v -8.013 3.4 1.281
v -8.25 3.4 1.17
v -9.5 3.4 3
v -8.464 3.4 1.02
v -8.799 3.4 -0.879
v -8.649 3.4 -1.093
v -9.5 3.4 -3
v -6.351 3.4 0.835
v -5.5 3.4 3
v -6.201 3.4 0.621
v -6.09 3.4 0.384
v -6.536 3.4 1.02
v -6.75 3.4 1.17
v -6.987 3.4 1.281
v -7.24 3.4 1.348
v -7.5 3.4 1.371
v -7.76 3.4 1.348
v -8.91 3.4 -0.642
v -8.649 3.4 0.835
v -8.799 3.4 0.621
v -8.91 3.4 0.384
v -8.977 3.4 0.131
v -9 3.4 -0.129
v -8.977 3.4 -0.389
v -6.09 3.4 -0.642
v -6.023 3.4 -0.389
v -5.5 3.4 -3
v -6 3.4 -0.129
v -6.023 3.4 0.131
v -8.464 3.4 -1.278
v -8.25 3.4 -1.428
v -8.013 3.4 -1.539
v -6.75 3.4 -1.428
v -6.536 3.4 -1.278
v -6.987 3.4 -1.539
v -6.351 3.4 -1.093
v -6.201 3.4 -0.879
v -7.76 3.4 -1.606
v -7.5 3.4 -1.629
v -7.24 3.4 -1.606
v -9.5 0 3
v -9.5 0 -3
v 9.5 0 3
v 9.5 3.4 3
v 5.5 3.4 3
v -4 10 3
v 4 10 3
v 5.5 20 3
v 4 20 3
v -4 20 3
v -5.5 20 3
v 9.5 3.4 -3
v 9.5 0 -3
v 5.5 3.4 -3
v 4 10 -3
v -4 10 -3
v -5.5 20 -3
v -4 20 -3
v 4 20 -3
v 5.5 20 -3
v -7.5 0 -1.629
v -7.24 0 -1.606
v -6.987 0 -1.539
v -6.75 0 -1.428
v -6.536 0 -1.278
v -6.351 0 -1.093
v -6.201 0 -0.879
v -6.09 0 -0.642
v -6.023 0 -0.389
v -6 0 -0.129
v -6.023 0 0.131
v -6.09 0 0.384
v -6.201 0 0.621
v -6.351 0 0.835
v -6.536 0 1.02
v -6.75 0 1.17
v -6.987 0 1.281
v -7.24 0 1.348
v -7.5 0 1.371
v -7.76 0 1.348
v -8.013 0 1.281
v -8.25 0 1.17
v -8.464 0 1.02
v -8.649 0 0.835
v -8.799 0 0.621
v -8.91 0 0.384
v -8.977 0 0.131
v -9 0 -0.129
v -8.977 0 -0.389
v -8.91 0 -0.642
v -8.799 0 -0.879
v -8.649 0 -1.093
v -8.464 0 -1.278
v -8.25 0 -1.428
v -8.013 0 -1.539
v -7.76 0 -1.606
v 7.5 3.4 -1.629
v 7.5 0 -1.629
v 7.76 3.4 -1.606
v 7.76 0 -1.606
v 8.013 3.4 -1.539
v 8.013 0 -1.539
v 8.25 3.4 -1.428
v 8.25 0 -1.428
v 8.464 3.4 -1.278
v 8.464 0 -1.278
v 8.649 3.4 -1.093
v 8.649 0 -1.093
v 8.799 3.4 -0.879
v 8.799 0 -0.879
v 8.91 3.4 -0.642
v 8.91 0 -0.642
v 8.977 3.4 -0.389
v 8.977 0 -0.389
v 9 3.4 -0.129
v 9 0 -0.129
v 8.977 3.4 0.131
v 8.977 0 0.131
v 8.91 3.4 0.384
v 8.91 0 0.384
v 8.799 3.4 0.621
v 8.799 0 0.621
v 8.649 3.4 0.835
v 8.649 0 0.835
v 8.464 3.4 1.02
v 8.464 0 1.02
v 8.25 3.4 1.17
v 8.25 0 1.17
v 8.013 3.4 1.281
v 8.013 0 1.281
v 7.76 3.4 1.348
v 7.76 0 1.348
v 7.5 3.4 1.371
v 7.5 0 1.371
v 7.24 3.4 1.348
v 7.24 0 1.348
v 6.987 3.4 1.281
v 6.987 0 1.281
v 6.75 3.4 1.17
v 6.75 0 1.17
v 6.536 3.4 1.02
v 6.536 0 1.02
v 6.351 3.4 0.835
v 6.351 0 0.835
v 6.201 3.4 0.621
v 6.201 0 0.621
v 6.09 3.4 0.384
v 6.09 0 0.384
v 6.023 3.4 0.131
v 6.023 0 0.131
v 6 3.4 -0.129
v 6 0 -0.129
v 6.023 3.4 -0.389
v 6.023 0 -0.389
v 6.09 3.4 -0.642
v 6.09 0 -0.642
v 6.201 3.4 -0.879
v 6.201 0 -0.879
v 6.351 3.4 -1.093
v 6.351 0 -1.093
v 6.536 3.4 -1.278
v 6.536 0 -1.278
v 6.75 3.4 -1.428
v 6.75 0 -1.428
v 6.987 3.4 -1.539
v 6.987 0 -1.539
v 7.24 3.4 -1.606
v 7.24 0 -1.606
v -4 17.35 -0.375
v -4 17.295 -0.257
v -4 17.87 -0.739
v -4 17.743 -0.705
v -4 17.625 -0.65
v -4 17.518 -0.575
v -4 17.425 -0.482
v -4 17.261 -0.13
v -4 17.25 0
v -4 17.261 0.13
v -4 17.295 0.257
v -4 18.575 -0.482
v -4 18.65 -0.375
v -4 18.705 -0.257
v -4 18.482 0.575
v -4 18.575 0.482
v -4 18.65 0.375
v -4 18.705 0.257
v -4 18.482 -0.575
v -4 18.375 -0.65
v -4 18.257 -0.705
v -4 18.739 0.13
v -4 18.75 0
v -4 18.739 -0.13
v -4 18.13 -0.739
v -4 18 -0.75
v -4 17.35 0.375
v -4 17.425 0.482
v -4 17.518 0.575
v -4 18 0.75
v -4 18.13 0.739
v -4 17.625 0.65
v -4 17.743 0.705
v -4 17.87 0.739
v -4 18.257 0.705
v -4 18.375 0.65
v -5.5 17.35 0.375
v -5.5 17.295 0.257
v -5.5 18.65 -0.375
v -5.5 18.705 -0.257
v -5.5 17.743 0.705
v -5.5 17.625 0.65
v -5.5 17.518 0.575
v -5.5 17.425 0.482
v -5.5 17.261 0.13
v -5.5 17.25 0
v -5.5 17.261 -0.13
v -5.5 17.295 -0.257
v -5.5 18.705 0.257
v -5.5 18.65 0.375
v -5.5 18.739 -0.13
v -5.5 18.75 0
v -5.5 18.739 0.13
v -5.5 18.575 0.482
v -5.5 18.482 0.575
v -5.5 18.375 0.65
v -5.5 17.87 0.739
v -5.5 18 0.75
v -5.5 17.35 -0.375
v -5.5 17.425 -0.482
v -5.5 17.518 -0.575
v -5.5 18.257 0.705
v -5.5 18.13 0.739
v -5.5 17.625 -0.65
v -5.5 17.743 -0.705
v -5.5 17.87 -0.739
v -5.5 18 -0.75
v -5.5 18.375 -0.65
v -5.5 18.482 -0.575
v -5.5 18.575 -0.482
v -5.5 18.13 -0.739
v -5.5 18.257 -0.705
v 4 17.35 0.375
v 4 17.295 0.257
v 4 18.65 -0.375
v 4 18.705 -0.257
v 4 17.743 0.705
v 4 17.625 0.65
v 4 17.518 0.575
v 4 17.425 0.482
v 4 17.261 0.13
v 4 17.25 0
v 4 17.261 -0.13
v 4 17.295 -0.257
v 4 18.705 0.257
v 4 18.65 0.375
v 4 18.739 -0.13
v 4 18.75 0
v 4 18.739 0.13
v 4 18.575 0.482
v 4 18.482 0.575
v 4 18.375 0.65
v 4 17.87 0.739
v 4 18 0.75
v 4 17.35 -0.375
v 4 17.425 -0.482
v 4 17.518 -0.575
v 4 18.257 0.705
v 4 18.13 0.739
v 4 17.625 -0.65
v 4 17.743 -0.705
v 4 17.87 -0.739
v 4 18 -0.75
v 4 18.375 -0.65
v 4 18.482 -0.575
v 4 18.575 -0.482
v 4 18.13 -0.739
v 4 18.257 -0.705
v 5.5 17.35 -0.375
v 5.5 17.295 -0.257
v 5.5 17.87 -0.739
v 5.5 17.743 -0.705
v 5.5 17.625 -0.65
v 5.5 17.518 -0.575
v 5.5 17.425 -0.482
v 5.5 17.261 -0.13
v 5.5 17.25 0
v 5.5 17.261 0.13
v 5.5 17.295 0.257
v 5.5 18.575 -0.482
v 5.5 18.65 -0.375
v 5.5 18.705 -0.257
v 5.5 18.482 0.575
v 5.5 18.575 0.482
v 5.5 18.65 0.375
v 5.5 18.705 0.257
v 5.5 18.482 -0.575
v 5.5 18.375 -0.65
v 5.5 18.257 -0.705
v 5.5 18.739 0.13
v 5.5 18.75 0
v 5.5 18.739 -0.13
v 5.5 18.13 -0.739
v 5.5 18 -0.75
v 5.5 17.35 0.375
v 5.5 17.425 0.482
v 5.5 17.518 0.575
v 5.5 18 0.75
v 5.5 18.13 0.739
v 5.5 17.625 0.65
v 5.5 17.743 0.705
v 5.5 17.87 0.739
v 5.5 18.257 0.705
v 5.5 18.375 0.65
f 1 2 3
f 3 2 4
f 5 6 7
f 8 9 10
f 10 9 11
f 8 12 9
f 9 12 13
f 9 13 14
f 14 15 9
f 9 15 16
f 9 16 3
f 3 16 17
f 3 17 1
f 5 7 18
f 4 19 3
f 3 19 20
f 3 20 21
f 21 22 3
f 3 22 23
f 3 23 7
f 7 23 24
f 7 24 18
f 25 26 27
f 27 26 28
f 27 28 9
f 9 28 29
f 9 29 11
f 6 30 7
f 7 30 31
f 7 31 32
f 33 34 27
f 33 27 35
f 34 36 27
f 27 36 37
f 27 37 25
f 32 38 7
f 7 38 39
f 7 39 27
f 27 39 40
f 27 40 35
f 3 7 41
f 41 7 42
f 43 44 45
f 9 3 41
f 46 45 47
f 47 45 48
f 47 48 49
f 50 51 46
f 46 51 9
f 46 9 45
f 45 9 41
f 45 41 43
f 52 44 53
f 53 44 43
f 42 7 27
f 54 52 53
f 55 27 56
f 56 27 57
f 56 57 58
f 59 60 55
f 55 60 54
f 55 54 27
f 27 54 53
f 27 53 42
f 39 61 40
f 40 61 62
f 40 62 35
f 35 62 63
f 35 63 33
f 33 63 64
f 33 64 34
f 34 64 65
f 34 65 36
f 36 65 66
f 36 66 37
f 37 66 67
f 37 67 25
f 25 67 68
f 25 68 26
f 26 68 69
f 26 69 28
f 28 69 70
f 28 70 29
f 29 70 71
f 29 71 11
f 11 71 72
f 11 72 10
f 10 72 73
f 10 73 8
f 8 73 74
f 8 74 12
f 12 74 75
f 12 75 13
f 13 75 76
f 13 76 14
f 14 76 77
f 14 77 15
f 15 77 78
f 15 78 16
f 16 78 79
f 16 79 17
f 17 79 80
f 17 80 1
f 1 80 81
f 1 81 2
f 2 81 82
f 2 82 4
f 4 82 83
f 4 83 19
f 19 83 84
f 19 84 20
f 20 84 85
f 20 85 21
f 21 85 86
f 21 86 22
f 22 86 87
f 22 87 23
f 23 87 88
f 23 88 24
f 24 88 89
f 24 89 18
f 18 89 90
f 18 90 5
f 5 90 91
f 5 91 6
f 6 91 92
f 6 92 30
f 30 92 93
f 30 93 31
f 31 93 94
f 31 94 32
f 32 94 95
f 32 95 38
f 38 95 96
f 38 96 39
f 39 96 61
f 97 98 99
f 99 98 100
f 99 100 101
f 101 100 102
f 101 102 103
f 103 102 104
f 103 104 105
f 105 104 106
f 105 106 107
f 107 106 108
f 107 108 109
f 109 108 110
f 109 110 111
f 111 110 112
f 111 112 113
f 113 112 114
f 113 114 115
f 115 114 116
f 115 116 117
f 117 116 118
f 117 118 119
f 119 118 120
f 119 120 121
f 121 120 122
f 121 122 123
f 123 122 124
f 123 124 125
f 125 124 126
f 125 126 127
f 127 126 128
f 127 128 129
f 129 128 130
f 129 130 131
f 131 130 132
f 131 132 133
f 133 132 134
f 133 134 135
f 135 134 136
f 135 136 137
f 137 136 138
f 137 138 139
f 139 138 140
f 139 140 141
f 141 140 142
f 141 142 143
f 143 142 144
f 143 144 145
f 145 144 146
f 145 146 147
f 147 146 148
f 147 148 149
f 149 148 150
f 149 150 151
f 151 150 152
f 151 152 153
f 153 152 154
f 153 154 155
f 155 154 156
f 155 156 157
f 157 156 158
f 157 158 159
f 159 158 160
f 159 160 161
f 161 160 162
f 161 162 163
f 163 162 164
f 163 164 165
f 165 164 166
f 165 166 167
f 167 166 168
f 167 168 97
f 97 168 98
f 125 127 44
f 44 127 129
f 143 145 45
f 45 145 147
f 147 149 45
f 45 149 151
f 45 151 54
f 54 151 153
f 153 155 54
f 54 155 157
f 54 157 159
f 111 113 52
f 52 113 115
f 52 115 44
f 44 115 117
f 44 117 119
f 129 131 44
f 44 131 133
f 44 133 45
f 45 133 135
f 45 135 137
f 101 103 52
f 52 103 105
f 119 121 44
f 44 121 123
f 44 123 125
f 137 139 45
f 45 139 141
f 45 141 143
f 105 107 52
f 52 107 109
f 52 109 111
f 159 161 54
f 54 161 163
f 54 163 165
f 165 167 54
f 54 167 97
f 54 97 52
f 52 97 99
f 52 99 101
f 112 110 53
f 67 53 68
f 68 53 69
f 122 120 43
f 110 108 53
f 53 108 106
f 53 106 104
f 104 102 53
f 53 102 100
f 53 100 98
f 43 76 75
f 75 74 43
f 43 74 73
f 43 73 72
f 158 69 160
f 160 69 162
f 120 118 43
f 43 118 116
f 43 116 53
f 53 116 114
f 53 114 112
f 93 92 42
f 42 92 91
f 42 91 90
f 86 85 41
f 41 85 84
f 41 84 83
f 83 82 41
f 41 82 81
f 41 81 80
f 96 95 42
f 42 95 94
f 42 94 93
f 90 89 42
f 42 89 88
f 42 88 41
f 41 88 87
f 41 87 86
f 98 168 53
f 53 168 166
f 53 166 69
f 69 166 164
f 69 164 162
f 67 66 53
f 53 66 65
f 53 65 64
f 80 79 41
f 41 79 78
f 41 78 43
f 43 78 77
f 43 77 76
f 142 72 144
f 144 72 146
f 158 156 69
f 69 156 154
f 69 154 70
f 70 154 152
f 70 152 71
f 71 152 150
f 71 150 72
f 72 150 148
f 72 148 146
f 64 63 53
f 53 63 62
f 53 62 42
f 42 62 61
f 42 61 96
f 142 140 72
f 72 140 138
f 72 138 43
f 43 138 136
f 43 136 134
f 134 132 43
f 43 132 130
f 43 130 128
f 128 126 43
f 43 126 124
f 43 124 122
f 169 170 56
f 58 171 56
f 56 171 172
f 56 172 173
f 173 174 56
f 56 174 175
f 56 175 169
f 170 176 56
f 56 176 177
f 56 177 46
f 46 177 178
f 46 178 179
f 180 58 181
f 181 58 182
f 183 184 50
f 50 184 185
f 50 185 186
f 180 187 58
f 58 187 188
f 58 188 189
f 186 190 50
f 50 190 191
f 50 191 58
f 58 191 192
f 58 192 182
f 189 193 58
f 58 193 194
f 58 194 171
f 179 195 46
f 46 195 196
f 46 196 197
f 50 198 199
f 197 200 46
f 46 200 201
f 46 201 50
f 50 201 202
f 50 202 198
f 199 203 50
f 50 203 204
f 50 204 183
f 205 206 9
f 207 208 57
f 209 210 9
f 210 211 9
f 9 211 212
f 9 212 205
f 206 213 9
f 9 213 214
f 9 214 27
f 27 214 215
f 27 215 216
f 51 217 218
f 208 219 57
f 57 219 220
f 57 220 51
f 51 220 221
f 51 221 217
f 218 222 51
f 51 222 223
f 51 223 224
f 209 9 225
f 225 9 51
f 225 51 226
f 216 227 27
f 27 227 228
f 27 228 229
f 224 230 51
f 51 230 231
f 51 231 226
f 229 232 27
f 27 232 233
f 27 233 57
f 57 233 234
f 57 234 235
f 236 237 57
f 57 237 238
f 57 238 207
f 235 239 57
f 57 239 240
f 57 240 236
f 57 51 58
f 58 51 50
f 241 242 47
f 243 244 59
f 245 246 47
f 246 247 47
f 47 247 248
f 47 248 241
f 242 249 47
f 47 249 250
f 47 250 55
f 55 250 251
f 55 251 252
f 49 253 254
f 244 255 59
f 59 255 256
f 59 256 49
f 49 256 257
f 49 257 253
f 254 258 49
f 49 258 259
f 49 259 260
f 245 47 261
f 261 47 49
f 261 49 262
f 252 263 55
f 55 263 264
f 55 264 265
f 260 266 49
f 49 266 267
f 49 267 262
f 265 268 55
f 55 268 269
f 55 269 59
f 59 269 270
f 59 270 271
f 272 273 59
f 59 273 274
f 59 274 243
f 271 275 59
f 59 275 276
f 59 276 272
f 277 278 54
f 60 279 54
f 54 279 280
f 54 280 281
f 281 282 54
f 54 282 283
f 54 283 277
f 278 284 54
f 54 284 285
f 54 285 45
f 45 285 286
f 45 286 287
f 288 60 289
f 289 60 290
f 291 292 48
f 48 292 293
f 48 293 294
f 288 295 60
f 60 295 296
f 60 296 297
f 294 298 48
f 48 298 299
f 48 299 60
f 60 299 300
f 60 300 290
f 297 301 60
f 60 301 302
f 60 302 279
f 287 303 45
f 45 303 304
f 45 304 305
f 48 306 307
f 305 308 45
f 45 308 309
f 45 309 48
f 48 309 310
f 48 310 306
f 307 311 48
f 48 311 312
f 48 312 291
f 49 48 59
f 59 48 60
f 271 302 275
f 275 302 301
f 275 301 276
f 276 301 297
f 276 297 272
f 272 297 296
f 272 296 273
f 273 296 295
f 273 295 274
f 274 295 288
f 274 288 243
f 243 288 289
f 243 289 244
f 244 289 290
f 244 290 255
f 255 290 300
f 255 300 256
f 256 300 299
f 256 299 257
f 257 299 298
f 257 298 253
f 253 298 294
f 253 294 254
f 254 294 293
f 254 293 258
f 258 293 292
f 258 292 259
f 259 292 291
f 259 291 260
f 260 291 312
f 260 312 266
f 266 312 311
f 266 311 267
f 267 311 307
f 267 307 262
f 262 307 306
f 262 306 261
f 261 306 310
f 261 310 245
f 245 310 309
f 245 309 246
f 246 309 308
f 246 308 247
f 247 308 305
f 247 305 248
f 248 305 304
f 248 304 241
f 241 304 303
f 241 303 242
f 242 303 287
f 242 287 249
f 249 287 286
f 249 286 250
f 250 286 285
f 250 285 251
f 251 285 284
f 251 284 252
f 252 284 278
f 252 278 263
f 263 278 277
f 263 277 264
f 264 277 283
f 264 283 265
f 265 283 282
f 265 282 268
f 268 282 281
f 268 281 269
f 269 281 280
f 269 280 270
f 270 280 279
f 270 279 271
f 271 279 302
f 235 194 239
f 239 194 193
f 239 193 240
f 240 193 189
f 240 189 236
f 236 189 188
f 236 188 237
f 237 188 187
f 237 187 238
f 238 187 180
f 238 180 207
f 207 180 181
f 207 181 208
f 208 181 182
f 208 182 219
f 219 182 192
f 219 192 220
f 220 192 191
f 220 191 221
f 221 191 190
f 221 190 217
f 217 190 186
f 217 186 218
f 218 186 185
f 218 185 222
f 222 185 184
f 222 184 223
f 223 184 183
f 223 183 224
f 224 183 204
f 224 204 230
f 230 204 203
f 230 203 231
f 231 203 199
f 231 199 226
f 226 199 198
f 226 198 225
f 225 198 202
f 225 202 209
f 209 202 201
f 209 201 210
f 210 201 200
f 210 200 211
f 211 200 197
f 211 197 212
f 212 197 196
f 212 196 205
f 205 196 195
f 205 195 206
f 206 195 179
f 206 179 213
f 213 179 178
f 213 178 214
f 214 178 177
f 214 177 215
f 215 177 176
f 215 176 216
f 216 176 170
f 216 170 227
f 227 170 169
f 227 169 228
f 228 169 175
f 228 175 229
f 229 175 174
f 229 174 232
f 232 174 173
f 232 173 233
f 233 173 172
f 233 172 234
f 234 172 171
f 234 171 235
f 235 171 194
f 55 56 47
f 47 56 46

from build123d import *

# Parameters (mm, degrees)
SKETCH1_R               = 1.5
BOSS_EXTRUDE1_DEPTH     = 3.4
SKETCH1_4_W             = 1.5
SKETCH1_4_H             = 6
BOSS_EXTRUDE2_DEPTH     = 20
CUT_EXTRUDE1_DEPTH      = 26.179356624
CUT_EXTRUDE1_DEPTH_BACK = 26.179356624
SKETCH2_R               = 0.75
BOSS_EXTRUDE3_DEPTH     = 10


with BuildPart() as part:
    # Sketch1 → Boss-Extrude1 (new body)
    with BuildSketch(Plane(origin=(0, 0, 0), x_dir=(1, 0, 0), z_dir=(0, 1, 0))):
        Polygon((-9.5, 3), (-9.5, -3), (9.5, -3), (9.5, 3), (0, 3), align=None)
        with Locations((-7.5, 0.128979829)):
            Circle(SKETCH1_R, mode=Mode.SUBTRACT)
        with Locations((7.5, 0.128979829)):
            Circle(SKETCH1_R, mode=Mode.SUBTRACT)
    extrude(amount=BOSS_EXTRUDE1_DEPTH)

    # Sketch1<4> → Boss-Extrude2 (add)
    with BuildSketch(Plane(origin=(0, 0, 0), x_dir=(1, 0, 0), z_dir=(0, 1, 0))):
        with Locations((-4.75, 0)):
            Rectangle(SKETCH1_4_W, SKETCH1_4_H)
        with Locations((4.75, 0)):
            Rectangle(SKETCH1_4_W, SKETCH1_4_H)
    extrude(amount=BOSS_EXTRUDE2_DEPTH)

    # Sketch2 → Cut-Extrude1 (cut, two sides: drawn at the far end of the back side and taken through both)
    with BuildSketch(Plane(origin=(5.5, 0, 0), x_dir=(0, 0, -1), z_dir=(1, 0, 0)).offset(-CUT_EXTRUDE1_DEPTH_BACK)):
        with Locations((0, 18)):
            Circle(SKETCH2_R)
    extrude(amount=CUT_EXTRUDE1_DEPTH + CUT_EXTRUDE1_DEPTH_BACK, mode=Mode.SUBTRACT)

    # Sketch1<5> → Boss-Extrude3 (add)
    with BuildSketch(Plane(origin=(0, 0, 0), x_dir=(1, 0, 0), z_dir=(0, 1, 0))):
        Polygon((0, 3), (-4, 3), (-4, -3), (4, -3), (4, 3), align=None)
    extrude(amount=BOSS_EXTRUDE3_DEPTH)


solid = part.part
